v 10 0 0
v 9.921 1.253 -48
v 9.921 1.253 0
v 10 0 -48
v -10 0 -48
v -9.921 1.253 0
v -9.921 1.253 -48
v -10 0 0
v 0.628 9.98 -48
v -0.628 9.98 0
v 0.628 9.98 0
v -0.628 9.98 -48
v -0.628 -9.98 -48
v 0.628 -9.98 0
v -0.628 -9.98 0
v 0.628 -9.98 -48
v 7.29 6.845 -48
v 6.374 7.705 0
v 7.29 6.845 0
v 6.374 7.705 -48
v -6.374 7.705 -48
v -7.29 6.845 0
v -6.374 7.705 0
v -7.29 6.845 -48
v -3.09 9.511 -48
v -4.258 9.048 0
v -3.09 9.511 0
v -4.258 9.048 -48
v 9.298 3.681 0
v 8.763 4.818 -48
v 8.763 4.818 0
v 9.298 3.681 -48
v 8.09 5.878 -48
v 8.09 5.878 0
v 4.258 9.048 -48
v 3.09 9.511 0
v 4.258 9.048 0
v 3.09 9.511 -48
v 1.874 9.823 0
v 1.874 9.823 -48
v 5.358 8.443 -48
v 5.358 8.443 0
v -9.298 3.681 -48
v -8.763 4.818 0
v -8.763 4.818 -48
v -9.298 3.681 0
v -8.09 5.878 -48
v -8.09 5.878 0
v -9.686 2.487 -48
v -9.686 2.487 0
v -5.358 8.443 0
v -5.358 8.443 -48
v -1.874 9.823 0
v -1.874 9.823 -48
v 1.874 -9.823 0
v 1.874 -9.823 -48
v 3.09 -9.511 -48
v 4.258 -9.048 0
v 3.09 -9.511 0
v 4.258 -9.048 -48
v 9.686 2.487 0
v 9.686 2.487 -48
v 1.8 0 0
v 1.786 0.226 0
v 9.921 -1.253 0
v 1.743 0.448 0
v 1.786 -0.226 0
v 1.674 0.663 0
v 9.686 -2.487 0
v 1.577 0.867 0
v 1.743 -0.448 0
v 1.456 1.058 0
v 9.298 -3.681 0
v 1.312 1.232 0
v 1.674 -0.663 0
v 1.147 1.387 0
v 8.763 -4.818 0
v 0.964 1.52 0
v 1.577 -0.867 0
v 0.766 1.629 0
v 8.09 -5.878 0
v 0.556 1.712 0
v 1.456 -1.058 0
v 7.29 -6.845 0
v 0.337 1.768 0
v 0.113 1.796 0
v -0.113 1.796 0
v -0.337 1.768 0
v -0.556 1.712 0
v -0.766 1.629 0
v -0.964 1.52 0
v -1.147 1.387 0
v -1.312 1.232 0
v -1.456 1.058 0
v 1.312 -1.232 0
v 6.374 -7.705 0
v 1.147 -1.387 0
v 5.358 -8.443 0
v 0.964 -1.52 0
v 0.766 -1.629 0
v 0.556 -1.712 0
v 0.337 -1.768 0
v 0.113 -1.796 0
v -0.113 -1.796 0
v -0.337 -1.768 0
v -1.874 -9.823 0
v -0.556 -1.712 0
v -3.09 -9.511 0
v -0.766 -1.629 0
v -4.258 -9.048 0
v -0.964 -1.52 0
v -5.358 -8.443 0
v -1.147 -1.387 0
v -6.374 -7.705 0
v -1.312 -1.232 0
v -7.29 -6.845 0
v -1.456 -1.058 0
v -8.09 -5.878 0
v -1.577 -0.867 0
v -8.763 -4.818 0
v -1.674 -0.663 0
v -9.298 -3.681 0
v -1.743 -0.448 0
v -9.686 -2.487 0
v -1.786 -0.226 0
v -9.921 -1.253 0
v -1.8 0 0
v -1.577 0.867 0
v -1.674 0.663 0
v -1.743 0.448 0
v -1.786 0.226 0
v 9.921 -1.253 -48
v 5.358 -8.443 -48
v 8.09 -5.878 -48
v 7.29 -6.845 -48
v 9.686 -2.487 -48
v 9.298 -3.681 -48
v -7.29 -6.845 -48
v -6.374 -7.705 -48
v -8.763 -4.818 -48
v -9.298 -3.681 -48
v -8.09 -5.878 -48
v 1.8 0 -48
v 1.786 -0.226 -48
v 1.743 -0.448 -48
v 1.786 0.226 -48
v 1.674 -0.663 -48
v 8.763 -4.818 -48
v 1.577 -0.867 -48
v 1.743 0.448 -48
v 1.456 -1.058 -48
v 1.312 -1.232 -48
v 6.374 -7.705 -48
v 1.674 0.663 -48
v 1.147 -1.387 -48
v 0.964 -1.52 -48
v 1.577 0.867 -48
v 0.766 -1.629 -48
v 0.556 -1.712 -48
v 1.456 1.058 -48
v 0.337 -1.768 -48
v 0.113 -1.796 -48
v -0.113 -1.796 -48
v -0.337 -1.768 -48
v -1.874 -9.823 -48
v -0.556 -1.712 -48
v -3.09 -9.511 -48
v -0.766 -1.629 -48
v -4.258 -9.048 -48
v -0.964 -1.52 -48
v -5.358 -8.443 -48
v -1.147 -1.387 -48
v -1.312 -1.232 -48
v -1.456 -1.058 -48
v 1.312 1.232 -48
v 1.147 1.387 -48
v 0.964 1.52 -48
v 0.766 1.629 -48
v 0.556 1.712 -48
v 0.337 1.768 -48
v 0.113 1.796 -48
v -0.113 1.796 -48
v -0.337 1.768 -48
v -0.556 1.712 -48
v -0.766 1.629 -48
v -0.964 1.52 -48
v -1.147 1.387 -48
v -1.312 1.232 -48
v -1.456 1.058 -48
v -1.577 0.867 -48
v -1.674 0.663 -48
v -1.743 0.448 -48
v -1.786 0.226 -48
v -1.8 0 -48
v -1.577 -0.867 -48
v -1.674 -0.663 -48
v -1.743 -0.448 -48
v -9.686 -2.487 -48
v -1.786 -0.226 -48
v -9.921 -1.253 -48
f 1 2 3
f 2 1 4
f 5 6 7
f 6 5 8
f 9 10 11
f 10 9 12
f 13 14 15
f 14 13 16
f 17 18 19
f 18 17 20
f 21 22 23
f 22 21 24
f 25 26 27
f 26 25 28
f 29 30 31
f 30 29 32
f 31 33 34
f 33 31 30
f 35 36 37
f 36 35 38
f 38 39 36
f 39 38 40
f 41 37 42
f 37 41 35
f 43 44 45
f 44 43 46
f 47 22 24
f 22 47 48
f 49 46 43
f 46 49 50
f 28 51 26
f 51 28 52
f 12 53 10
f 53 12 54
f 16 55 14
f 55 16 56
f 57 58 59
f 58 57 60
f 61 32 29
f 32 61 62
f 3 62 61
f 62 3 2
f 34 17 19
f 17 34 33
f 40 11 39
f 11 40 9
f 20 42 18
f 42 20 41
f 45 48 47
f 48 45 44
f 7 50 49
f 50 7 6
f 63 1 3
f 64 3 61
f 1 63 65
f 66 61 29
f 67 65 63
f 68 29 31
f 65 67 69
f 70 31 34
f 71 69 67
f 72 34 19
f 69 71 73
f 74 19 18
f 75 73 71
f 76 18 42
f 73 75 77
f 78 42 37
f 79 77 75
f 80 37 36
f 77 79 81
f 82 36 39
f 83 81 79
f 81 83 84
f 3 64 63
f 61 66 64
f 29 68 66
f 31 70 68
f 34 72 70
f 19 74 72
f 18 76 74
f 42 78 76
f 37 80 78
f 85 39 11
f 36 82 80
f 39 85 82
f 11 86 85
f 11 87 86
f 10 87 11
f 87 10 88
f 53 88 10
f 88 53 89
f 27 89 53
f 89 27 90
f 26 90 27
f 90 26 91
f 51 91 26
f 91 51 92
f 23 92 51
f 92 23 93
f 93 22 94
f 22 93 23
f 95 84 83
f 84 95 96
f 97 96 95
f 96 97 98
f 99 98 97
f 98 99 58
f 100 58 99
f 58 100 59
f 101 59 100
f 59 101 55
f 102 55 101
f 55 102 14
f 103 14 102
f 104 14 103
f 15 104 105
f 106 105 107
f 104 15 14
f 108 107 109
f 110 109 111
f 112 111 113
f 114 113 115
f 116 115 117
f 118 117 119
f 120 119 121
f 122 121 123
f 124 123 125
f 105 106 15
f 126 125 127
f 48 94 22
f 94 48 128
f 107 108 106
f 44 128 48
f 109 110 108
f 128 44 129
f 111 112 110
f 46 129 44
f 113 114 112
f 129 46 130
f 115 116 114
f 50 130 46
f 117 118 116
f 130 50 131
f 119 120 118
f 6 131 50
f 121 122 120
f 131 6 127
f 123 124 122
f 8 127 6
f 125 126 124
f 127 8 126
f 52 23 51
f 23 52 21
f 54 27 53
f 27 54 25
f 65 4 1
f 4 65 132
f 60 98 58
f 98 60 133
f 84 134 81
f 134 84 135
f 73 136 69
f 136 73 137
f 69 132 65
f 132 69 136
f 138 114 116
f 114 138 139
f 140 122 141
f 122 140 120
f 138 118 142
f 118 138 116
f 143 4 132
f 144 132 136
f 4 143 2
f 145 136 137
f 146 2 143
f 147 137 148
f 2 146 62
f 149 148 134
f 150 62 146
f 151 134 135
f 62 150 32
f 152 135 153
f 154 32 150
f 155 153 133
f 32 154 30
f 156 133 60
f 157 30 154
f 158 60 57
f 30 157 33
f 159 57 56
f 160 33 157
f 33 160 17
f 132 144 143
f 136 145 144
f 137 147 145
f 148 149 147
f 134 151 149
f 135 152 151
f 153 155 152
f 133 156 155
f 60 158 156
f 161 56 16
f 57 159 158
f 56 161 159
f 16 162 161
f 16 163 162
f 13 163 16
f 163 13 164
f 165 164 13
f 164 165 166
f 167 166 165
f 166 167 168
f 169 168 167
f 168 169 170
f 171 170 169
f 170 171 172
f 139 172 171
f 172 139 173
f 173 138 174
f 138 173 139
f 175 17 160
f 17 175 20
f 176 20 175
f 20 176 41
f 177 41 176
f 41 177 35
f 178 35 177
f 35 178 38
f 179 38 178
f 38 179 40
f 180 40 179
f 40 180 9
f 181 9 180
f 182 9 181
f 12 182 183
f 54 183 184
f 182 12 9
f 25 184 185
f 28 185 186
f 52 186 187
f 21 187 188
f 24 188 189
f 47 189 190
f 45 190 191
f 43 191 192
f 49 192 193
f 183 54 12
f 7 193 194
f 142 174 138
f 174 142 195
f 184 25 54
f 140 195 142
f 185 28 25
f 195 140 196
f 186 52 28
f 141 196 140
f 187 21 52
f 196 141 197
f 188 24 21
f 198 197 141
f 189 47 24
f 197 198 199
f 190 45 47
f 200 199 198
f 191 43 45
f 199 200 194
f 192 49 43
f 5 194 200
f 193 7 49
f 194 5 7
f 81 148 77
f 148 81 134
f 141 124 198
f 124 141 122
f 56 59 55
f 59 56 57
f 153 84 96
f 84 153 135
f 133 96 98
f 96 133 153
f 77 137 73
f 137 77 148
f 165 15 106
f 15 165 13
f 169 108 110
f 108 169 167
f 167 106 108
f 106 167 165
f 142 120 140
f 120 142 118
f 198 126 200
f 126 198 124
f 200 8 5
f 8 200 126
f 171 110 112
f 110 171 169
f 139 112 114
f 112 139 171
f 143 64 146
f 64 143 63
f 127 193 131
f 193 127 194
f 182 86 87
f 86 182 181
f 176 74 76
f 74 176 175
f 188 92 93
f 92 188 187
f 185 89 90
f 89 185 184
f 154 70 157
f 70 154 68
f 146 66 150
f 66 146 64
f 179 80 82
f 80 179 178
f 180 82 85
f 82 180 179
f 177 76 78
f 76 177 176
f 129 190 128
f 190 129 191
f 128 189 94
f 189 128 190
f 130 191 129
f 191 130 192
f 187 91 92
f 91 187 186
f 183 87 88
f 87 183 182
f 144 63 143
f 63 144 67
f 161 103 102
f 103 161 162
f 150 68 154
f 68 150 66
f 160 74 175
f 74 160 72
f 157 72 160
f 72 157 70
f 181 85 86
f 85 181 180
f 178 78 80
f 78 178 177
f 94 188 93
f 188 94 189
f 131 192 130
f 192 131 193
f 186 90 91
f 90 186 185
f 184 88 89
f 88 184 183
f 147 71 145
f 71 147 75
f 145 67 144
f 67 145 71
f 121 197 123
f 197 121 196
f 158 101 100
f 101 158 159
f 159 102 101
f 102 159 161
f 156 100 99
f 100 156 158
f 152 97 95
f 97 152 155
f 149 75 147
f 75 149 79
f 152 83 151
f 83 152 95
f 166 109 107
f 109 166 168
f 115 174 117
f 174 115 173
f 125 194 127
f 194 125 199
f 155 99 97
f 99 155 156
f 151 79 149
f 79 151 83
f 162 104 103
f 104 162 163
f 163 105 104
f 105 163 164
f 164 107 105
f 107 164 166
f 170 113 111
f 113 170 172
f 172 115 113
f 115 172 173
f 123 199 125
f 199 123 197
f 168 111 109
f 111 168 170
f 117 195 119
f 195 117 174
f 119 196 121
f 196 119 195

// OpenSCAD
$fn = 50;


difference() {
	union() {
		translate(v = [0, 0, -48.0000000000]) {
			cylinder(h = 48, r = 10.0000000000);
		}
		cylinder(h = 0, r = 13.0000000000);
	}
	union() {
		#translate(v = [0, 0, -48]) {
			cylinder(h = 48, r = 1.8000000000);
		}
	}
}
